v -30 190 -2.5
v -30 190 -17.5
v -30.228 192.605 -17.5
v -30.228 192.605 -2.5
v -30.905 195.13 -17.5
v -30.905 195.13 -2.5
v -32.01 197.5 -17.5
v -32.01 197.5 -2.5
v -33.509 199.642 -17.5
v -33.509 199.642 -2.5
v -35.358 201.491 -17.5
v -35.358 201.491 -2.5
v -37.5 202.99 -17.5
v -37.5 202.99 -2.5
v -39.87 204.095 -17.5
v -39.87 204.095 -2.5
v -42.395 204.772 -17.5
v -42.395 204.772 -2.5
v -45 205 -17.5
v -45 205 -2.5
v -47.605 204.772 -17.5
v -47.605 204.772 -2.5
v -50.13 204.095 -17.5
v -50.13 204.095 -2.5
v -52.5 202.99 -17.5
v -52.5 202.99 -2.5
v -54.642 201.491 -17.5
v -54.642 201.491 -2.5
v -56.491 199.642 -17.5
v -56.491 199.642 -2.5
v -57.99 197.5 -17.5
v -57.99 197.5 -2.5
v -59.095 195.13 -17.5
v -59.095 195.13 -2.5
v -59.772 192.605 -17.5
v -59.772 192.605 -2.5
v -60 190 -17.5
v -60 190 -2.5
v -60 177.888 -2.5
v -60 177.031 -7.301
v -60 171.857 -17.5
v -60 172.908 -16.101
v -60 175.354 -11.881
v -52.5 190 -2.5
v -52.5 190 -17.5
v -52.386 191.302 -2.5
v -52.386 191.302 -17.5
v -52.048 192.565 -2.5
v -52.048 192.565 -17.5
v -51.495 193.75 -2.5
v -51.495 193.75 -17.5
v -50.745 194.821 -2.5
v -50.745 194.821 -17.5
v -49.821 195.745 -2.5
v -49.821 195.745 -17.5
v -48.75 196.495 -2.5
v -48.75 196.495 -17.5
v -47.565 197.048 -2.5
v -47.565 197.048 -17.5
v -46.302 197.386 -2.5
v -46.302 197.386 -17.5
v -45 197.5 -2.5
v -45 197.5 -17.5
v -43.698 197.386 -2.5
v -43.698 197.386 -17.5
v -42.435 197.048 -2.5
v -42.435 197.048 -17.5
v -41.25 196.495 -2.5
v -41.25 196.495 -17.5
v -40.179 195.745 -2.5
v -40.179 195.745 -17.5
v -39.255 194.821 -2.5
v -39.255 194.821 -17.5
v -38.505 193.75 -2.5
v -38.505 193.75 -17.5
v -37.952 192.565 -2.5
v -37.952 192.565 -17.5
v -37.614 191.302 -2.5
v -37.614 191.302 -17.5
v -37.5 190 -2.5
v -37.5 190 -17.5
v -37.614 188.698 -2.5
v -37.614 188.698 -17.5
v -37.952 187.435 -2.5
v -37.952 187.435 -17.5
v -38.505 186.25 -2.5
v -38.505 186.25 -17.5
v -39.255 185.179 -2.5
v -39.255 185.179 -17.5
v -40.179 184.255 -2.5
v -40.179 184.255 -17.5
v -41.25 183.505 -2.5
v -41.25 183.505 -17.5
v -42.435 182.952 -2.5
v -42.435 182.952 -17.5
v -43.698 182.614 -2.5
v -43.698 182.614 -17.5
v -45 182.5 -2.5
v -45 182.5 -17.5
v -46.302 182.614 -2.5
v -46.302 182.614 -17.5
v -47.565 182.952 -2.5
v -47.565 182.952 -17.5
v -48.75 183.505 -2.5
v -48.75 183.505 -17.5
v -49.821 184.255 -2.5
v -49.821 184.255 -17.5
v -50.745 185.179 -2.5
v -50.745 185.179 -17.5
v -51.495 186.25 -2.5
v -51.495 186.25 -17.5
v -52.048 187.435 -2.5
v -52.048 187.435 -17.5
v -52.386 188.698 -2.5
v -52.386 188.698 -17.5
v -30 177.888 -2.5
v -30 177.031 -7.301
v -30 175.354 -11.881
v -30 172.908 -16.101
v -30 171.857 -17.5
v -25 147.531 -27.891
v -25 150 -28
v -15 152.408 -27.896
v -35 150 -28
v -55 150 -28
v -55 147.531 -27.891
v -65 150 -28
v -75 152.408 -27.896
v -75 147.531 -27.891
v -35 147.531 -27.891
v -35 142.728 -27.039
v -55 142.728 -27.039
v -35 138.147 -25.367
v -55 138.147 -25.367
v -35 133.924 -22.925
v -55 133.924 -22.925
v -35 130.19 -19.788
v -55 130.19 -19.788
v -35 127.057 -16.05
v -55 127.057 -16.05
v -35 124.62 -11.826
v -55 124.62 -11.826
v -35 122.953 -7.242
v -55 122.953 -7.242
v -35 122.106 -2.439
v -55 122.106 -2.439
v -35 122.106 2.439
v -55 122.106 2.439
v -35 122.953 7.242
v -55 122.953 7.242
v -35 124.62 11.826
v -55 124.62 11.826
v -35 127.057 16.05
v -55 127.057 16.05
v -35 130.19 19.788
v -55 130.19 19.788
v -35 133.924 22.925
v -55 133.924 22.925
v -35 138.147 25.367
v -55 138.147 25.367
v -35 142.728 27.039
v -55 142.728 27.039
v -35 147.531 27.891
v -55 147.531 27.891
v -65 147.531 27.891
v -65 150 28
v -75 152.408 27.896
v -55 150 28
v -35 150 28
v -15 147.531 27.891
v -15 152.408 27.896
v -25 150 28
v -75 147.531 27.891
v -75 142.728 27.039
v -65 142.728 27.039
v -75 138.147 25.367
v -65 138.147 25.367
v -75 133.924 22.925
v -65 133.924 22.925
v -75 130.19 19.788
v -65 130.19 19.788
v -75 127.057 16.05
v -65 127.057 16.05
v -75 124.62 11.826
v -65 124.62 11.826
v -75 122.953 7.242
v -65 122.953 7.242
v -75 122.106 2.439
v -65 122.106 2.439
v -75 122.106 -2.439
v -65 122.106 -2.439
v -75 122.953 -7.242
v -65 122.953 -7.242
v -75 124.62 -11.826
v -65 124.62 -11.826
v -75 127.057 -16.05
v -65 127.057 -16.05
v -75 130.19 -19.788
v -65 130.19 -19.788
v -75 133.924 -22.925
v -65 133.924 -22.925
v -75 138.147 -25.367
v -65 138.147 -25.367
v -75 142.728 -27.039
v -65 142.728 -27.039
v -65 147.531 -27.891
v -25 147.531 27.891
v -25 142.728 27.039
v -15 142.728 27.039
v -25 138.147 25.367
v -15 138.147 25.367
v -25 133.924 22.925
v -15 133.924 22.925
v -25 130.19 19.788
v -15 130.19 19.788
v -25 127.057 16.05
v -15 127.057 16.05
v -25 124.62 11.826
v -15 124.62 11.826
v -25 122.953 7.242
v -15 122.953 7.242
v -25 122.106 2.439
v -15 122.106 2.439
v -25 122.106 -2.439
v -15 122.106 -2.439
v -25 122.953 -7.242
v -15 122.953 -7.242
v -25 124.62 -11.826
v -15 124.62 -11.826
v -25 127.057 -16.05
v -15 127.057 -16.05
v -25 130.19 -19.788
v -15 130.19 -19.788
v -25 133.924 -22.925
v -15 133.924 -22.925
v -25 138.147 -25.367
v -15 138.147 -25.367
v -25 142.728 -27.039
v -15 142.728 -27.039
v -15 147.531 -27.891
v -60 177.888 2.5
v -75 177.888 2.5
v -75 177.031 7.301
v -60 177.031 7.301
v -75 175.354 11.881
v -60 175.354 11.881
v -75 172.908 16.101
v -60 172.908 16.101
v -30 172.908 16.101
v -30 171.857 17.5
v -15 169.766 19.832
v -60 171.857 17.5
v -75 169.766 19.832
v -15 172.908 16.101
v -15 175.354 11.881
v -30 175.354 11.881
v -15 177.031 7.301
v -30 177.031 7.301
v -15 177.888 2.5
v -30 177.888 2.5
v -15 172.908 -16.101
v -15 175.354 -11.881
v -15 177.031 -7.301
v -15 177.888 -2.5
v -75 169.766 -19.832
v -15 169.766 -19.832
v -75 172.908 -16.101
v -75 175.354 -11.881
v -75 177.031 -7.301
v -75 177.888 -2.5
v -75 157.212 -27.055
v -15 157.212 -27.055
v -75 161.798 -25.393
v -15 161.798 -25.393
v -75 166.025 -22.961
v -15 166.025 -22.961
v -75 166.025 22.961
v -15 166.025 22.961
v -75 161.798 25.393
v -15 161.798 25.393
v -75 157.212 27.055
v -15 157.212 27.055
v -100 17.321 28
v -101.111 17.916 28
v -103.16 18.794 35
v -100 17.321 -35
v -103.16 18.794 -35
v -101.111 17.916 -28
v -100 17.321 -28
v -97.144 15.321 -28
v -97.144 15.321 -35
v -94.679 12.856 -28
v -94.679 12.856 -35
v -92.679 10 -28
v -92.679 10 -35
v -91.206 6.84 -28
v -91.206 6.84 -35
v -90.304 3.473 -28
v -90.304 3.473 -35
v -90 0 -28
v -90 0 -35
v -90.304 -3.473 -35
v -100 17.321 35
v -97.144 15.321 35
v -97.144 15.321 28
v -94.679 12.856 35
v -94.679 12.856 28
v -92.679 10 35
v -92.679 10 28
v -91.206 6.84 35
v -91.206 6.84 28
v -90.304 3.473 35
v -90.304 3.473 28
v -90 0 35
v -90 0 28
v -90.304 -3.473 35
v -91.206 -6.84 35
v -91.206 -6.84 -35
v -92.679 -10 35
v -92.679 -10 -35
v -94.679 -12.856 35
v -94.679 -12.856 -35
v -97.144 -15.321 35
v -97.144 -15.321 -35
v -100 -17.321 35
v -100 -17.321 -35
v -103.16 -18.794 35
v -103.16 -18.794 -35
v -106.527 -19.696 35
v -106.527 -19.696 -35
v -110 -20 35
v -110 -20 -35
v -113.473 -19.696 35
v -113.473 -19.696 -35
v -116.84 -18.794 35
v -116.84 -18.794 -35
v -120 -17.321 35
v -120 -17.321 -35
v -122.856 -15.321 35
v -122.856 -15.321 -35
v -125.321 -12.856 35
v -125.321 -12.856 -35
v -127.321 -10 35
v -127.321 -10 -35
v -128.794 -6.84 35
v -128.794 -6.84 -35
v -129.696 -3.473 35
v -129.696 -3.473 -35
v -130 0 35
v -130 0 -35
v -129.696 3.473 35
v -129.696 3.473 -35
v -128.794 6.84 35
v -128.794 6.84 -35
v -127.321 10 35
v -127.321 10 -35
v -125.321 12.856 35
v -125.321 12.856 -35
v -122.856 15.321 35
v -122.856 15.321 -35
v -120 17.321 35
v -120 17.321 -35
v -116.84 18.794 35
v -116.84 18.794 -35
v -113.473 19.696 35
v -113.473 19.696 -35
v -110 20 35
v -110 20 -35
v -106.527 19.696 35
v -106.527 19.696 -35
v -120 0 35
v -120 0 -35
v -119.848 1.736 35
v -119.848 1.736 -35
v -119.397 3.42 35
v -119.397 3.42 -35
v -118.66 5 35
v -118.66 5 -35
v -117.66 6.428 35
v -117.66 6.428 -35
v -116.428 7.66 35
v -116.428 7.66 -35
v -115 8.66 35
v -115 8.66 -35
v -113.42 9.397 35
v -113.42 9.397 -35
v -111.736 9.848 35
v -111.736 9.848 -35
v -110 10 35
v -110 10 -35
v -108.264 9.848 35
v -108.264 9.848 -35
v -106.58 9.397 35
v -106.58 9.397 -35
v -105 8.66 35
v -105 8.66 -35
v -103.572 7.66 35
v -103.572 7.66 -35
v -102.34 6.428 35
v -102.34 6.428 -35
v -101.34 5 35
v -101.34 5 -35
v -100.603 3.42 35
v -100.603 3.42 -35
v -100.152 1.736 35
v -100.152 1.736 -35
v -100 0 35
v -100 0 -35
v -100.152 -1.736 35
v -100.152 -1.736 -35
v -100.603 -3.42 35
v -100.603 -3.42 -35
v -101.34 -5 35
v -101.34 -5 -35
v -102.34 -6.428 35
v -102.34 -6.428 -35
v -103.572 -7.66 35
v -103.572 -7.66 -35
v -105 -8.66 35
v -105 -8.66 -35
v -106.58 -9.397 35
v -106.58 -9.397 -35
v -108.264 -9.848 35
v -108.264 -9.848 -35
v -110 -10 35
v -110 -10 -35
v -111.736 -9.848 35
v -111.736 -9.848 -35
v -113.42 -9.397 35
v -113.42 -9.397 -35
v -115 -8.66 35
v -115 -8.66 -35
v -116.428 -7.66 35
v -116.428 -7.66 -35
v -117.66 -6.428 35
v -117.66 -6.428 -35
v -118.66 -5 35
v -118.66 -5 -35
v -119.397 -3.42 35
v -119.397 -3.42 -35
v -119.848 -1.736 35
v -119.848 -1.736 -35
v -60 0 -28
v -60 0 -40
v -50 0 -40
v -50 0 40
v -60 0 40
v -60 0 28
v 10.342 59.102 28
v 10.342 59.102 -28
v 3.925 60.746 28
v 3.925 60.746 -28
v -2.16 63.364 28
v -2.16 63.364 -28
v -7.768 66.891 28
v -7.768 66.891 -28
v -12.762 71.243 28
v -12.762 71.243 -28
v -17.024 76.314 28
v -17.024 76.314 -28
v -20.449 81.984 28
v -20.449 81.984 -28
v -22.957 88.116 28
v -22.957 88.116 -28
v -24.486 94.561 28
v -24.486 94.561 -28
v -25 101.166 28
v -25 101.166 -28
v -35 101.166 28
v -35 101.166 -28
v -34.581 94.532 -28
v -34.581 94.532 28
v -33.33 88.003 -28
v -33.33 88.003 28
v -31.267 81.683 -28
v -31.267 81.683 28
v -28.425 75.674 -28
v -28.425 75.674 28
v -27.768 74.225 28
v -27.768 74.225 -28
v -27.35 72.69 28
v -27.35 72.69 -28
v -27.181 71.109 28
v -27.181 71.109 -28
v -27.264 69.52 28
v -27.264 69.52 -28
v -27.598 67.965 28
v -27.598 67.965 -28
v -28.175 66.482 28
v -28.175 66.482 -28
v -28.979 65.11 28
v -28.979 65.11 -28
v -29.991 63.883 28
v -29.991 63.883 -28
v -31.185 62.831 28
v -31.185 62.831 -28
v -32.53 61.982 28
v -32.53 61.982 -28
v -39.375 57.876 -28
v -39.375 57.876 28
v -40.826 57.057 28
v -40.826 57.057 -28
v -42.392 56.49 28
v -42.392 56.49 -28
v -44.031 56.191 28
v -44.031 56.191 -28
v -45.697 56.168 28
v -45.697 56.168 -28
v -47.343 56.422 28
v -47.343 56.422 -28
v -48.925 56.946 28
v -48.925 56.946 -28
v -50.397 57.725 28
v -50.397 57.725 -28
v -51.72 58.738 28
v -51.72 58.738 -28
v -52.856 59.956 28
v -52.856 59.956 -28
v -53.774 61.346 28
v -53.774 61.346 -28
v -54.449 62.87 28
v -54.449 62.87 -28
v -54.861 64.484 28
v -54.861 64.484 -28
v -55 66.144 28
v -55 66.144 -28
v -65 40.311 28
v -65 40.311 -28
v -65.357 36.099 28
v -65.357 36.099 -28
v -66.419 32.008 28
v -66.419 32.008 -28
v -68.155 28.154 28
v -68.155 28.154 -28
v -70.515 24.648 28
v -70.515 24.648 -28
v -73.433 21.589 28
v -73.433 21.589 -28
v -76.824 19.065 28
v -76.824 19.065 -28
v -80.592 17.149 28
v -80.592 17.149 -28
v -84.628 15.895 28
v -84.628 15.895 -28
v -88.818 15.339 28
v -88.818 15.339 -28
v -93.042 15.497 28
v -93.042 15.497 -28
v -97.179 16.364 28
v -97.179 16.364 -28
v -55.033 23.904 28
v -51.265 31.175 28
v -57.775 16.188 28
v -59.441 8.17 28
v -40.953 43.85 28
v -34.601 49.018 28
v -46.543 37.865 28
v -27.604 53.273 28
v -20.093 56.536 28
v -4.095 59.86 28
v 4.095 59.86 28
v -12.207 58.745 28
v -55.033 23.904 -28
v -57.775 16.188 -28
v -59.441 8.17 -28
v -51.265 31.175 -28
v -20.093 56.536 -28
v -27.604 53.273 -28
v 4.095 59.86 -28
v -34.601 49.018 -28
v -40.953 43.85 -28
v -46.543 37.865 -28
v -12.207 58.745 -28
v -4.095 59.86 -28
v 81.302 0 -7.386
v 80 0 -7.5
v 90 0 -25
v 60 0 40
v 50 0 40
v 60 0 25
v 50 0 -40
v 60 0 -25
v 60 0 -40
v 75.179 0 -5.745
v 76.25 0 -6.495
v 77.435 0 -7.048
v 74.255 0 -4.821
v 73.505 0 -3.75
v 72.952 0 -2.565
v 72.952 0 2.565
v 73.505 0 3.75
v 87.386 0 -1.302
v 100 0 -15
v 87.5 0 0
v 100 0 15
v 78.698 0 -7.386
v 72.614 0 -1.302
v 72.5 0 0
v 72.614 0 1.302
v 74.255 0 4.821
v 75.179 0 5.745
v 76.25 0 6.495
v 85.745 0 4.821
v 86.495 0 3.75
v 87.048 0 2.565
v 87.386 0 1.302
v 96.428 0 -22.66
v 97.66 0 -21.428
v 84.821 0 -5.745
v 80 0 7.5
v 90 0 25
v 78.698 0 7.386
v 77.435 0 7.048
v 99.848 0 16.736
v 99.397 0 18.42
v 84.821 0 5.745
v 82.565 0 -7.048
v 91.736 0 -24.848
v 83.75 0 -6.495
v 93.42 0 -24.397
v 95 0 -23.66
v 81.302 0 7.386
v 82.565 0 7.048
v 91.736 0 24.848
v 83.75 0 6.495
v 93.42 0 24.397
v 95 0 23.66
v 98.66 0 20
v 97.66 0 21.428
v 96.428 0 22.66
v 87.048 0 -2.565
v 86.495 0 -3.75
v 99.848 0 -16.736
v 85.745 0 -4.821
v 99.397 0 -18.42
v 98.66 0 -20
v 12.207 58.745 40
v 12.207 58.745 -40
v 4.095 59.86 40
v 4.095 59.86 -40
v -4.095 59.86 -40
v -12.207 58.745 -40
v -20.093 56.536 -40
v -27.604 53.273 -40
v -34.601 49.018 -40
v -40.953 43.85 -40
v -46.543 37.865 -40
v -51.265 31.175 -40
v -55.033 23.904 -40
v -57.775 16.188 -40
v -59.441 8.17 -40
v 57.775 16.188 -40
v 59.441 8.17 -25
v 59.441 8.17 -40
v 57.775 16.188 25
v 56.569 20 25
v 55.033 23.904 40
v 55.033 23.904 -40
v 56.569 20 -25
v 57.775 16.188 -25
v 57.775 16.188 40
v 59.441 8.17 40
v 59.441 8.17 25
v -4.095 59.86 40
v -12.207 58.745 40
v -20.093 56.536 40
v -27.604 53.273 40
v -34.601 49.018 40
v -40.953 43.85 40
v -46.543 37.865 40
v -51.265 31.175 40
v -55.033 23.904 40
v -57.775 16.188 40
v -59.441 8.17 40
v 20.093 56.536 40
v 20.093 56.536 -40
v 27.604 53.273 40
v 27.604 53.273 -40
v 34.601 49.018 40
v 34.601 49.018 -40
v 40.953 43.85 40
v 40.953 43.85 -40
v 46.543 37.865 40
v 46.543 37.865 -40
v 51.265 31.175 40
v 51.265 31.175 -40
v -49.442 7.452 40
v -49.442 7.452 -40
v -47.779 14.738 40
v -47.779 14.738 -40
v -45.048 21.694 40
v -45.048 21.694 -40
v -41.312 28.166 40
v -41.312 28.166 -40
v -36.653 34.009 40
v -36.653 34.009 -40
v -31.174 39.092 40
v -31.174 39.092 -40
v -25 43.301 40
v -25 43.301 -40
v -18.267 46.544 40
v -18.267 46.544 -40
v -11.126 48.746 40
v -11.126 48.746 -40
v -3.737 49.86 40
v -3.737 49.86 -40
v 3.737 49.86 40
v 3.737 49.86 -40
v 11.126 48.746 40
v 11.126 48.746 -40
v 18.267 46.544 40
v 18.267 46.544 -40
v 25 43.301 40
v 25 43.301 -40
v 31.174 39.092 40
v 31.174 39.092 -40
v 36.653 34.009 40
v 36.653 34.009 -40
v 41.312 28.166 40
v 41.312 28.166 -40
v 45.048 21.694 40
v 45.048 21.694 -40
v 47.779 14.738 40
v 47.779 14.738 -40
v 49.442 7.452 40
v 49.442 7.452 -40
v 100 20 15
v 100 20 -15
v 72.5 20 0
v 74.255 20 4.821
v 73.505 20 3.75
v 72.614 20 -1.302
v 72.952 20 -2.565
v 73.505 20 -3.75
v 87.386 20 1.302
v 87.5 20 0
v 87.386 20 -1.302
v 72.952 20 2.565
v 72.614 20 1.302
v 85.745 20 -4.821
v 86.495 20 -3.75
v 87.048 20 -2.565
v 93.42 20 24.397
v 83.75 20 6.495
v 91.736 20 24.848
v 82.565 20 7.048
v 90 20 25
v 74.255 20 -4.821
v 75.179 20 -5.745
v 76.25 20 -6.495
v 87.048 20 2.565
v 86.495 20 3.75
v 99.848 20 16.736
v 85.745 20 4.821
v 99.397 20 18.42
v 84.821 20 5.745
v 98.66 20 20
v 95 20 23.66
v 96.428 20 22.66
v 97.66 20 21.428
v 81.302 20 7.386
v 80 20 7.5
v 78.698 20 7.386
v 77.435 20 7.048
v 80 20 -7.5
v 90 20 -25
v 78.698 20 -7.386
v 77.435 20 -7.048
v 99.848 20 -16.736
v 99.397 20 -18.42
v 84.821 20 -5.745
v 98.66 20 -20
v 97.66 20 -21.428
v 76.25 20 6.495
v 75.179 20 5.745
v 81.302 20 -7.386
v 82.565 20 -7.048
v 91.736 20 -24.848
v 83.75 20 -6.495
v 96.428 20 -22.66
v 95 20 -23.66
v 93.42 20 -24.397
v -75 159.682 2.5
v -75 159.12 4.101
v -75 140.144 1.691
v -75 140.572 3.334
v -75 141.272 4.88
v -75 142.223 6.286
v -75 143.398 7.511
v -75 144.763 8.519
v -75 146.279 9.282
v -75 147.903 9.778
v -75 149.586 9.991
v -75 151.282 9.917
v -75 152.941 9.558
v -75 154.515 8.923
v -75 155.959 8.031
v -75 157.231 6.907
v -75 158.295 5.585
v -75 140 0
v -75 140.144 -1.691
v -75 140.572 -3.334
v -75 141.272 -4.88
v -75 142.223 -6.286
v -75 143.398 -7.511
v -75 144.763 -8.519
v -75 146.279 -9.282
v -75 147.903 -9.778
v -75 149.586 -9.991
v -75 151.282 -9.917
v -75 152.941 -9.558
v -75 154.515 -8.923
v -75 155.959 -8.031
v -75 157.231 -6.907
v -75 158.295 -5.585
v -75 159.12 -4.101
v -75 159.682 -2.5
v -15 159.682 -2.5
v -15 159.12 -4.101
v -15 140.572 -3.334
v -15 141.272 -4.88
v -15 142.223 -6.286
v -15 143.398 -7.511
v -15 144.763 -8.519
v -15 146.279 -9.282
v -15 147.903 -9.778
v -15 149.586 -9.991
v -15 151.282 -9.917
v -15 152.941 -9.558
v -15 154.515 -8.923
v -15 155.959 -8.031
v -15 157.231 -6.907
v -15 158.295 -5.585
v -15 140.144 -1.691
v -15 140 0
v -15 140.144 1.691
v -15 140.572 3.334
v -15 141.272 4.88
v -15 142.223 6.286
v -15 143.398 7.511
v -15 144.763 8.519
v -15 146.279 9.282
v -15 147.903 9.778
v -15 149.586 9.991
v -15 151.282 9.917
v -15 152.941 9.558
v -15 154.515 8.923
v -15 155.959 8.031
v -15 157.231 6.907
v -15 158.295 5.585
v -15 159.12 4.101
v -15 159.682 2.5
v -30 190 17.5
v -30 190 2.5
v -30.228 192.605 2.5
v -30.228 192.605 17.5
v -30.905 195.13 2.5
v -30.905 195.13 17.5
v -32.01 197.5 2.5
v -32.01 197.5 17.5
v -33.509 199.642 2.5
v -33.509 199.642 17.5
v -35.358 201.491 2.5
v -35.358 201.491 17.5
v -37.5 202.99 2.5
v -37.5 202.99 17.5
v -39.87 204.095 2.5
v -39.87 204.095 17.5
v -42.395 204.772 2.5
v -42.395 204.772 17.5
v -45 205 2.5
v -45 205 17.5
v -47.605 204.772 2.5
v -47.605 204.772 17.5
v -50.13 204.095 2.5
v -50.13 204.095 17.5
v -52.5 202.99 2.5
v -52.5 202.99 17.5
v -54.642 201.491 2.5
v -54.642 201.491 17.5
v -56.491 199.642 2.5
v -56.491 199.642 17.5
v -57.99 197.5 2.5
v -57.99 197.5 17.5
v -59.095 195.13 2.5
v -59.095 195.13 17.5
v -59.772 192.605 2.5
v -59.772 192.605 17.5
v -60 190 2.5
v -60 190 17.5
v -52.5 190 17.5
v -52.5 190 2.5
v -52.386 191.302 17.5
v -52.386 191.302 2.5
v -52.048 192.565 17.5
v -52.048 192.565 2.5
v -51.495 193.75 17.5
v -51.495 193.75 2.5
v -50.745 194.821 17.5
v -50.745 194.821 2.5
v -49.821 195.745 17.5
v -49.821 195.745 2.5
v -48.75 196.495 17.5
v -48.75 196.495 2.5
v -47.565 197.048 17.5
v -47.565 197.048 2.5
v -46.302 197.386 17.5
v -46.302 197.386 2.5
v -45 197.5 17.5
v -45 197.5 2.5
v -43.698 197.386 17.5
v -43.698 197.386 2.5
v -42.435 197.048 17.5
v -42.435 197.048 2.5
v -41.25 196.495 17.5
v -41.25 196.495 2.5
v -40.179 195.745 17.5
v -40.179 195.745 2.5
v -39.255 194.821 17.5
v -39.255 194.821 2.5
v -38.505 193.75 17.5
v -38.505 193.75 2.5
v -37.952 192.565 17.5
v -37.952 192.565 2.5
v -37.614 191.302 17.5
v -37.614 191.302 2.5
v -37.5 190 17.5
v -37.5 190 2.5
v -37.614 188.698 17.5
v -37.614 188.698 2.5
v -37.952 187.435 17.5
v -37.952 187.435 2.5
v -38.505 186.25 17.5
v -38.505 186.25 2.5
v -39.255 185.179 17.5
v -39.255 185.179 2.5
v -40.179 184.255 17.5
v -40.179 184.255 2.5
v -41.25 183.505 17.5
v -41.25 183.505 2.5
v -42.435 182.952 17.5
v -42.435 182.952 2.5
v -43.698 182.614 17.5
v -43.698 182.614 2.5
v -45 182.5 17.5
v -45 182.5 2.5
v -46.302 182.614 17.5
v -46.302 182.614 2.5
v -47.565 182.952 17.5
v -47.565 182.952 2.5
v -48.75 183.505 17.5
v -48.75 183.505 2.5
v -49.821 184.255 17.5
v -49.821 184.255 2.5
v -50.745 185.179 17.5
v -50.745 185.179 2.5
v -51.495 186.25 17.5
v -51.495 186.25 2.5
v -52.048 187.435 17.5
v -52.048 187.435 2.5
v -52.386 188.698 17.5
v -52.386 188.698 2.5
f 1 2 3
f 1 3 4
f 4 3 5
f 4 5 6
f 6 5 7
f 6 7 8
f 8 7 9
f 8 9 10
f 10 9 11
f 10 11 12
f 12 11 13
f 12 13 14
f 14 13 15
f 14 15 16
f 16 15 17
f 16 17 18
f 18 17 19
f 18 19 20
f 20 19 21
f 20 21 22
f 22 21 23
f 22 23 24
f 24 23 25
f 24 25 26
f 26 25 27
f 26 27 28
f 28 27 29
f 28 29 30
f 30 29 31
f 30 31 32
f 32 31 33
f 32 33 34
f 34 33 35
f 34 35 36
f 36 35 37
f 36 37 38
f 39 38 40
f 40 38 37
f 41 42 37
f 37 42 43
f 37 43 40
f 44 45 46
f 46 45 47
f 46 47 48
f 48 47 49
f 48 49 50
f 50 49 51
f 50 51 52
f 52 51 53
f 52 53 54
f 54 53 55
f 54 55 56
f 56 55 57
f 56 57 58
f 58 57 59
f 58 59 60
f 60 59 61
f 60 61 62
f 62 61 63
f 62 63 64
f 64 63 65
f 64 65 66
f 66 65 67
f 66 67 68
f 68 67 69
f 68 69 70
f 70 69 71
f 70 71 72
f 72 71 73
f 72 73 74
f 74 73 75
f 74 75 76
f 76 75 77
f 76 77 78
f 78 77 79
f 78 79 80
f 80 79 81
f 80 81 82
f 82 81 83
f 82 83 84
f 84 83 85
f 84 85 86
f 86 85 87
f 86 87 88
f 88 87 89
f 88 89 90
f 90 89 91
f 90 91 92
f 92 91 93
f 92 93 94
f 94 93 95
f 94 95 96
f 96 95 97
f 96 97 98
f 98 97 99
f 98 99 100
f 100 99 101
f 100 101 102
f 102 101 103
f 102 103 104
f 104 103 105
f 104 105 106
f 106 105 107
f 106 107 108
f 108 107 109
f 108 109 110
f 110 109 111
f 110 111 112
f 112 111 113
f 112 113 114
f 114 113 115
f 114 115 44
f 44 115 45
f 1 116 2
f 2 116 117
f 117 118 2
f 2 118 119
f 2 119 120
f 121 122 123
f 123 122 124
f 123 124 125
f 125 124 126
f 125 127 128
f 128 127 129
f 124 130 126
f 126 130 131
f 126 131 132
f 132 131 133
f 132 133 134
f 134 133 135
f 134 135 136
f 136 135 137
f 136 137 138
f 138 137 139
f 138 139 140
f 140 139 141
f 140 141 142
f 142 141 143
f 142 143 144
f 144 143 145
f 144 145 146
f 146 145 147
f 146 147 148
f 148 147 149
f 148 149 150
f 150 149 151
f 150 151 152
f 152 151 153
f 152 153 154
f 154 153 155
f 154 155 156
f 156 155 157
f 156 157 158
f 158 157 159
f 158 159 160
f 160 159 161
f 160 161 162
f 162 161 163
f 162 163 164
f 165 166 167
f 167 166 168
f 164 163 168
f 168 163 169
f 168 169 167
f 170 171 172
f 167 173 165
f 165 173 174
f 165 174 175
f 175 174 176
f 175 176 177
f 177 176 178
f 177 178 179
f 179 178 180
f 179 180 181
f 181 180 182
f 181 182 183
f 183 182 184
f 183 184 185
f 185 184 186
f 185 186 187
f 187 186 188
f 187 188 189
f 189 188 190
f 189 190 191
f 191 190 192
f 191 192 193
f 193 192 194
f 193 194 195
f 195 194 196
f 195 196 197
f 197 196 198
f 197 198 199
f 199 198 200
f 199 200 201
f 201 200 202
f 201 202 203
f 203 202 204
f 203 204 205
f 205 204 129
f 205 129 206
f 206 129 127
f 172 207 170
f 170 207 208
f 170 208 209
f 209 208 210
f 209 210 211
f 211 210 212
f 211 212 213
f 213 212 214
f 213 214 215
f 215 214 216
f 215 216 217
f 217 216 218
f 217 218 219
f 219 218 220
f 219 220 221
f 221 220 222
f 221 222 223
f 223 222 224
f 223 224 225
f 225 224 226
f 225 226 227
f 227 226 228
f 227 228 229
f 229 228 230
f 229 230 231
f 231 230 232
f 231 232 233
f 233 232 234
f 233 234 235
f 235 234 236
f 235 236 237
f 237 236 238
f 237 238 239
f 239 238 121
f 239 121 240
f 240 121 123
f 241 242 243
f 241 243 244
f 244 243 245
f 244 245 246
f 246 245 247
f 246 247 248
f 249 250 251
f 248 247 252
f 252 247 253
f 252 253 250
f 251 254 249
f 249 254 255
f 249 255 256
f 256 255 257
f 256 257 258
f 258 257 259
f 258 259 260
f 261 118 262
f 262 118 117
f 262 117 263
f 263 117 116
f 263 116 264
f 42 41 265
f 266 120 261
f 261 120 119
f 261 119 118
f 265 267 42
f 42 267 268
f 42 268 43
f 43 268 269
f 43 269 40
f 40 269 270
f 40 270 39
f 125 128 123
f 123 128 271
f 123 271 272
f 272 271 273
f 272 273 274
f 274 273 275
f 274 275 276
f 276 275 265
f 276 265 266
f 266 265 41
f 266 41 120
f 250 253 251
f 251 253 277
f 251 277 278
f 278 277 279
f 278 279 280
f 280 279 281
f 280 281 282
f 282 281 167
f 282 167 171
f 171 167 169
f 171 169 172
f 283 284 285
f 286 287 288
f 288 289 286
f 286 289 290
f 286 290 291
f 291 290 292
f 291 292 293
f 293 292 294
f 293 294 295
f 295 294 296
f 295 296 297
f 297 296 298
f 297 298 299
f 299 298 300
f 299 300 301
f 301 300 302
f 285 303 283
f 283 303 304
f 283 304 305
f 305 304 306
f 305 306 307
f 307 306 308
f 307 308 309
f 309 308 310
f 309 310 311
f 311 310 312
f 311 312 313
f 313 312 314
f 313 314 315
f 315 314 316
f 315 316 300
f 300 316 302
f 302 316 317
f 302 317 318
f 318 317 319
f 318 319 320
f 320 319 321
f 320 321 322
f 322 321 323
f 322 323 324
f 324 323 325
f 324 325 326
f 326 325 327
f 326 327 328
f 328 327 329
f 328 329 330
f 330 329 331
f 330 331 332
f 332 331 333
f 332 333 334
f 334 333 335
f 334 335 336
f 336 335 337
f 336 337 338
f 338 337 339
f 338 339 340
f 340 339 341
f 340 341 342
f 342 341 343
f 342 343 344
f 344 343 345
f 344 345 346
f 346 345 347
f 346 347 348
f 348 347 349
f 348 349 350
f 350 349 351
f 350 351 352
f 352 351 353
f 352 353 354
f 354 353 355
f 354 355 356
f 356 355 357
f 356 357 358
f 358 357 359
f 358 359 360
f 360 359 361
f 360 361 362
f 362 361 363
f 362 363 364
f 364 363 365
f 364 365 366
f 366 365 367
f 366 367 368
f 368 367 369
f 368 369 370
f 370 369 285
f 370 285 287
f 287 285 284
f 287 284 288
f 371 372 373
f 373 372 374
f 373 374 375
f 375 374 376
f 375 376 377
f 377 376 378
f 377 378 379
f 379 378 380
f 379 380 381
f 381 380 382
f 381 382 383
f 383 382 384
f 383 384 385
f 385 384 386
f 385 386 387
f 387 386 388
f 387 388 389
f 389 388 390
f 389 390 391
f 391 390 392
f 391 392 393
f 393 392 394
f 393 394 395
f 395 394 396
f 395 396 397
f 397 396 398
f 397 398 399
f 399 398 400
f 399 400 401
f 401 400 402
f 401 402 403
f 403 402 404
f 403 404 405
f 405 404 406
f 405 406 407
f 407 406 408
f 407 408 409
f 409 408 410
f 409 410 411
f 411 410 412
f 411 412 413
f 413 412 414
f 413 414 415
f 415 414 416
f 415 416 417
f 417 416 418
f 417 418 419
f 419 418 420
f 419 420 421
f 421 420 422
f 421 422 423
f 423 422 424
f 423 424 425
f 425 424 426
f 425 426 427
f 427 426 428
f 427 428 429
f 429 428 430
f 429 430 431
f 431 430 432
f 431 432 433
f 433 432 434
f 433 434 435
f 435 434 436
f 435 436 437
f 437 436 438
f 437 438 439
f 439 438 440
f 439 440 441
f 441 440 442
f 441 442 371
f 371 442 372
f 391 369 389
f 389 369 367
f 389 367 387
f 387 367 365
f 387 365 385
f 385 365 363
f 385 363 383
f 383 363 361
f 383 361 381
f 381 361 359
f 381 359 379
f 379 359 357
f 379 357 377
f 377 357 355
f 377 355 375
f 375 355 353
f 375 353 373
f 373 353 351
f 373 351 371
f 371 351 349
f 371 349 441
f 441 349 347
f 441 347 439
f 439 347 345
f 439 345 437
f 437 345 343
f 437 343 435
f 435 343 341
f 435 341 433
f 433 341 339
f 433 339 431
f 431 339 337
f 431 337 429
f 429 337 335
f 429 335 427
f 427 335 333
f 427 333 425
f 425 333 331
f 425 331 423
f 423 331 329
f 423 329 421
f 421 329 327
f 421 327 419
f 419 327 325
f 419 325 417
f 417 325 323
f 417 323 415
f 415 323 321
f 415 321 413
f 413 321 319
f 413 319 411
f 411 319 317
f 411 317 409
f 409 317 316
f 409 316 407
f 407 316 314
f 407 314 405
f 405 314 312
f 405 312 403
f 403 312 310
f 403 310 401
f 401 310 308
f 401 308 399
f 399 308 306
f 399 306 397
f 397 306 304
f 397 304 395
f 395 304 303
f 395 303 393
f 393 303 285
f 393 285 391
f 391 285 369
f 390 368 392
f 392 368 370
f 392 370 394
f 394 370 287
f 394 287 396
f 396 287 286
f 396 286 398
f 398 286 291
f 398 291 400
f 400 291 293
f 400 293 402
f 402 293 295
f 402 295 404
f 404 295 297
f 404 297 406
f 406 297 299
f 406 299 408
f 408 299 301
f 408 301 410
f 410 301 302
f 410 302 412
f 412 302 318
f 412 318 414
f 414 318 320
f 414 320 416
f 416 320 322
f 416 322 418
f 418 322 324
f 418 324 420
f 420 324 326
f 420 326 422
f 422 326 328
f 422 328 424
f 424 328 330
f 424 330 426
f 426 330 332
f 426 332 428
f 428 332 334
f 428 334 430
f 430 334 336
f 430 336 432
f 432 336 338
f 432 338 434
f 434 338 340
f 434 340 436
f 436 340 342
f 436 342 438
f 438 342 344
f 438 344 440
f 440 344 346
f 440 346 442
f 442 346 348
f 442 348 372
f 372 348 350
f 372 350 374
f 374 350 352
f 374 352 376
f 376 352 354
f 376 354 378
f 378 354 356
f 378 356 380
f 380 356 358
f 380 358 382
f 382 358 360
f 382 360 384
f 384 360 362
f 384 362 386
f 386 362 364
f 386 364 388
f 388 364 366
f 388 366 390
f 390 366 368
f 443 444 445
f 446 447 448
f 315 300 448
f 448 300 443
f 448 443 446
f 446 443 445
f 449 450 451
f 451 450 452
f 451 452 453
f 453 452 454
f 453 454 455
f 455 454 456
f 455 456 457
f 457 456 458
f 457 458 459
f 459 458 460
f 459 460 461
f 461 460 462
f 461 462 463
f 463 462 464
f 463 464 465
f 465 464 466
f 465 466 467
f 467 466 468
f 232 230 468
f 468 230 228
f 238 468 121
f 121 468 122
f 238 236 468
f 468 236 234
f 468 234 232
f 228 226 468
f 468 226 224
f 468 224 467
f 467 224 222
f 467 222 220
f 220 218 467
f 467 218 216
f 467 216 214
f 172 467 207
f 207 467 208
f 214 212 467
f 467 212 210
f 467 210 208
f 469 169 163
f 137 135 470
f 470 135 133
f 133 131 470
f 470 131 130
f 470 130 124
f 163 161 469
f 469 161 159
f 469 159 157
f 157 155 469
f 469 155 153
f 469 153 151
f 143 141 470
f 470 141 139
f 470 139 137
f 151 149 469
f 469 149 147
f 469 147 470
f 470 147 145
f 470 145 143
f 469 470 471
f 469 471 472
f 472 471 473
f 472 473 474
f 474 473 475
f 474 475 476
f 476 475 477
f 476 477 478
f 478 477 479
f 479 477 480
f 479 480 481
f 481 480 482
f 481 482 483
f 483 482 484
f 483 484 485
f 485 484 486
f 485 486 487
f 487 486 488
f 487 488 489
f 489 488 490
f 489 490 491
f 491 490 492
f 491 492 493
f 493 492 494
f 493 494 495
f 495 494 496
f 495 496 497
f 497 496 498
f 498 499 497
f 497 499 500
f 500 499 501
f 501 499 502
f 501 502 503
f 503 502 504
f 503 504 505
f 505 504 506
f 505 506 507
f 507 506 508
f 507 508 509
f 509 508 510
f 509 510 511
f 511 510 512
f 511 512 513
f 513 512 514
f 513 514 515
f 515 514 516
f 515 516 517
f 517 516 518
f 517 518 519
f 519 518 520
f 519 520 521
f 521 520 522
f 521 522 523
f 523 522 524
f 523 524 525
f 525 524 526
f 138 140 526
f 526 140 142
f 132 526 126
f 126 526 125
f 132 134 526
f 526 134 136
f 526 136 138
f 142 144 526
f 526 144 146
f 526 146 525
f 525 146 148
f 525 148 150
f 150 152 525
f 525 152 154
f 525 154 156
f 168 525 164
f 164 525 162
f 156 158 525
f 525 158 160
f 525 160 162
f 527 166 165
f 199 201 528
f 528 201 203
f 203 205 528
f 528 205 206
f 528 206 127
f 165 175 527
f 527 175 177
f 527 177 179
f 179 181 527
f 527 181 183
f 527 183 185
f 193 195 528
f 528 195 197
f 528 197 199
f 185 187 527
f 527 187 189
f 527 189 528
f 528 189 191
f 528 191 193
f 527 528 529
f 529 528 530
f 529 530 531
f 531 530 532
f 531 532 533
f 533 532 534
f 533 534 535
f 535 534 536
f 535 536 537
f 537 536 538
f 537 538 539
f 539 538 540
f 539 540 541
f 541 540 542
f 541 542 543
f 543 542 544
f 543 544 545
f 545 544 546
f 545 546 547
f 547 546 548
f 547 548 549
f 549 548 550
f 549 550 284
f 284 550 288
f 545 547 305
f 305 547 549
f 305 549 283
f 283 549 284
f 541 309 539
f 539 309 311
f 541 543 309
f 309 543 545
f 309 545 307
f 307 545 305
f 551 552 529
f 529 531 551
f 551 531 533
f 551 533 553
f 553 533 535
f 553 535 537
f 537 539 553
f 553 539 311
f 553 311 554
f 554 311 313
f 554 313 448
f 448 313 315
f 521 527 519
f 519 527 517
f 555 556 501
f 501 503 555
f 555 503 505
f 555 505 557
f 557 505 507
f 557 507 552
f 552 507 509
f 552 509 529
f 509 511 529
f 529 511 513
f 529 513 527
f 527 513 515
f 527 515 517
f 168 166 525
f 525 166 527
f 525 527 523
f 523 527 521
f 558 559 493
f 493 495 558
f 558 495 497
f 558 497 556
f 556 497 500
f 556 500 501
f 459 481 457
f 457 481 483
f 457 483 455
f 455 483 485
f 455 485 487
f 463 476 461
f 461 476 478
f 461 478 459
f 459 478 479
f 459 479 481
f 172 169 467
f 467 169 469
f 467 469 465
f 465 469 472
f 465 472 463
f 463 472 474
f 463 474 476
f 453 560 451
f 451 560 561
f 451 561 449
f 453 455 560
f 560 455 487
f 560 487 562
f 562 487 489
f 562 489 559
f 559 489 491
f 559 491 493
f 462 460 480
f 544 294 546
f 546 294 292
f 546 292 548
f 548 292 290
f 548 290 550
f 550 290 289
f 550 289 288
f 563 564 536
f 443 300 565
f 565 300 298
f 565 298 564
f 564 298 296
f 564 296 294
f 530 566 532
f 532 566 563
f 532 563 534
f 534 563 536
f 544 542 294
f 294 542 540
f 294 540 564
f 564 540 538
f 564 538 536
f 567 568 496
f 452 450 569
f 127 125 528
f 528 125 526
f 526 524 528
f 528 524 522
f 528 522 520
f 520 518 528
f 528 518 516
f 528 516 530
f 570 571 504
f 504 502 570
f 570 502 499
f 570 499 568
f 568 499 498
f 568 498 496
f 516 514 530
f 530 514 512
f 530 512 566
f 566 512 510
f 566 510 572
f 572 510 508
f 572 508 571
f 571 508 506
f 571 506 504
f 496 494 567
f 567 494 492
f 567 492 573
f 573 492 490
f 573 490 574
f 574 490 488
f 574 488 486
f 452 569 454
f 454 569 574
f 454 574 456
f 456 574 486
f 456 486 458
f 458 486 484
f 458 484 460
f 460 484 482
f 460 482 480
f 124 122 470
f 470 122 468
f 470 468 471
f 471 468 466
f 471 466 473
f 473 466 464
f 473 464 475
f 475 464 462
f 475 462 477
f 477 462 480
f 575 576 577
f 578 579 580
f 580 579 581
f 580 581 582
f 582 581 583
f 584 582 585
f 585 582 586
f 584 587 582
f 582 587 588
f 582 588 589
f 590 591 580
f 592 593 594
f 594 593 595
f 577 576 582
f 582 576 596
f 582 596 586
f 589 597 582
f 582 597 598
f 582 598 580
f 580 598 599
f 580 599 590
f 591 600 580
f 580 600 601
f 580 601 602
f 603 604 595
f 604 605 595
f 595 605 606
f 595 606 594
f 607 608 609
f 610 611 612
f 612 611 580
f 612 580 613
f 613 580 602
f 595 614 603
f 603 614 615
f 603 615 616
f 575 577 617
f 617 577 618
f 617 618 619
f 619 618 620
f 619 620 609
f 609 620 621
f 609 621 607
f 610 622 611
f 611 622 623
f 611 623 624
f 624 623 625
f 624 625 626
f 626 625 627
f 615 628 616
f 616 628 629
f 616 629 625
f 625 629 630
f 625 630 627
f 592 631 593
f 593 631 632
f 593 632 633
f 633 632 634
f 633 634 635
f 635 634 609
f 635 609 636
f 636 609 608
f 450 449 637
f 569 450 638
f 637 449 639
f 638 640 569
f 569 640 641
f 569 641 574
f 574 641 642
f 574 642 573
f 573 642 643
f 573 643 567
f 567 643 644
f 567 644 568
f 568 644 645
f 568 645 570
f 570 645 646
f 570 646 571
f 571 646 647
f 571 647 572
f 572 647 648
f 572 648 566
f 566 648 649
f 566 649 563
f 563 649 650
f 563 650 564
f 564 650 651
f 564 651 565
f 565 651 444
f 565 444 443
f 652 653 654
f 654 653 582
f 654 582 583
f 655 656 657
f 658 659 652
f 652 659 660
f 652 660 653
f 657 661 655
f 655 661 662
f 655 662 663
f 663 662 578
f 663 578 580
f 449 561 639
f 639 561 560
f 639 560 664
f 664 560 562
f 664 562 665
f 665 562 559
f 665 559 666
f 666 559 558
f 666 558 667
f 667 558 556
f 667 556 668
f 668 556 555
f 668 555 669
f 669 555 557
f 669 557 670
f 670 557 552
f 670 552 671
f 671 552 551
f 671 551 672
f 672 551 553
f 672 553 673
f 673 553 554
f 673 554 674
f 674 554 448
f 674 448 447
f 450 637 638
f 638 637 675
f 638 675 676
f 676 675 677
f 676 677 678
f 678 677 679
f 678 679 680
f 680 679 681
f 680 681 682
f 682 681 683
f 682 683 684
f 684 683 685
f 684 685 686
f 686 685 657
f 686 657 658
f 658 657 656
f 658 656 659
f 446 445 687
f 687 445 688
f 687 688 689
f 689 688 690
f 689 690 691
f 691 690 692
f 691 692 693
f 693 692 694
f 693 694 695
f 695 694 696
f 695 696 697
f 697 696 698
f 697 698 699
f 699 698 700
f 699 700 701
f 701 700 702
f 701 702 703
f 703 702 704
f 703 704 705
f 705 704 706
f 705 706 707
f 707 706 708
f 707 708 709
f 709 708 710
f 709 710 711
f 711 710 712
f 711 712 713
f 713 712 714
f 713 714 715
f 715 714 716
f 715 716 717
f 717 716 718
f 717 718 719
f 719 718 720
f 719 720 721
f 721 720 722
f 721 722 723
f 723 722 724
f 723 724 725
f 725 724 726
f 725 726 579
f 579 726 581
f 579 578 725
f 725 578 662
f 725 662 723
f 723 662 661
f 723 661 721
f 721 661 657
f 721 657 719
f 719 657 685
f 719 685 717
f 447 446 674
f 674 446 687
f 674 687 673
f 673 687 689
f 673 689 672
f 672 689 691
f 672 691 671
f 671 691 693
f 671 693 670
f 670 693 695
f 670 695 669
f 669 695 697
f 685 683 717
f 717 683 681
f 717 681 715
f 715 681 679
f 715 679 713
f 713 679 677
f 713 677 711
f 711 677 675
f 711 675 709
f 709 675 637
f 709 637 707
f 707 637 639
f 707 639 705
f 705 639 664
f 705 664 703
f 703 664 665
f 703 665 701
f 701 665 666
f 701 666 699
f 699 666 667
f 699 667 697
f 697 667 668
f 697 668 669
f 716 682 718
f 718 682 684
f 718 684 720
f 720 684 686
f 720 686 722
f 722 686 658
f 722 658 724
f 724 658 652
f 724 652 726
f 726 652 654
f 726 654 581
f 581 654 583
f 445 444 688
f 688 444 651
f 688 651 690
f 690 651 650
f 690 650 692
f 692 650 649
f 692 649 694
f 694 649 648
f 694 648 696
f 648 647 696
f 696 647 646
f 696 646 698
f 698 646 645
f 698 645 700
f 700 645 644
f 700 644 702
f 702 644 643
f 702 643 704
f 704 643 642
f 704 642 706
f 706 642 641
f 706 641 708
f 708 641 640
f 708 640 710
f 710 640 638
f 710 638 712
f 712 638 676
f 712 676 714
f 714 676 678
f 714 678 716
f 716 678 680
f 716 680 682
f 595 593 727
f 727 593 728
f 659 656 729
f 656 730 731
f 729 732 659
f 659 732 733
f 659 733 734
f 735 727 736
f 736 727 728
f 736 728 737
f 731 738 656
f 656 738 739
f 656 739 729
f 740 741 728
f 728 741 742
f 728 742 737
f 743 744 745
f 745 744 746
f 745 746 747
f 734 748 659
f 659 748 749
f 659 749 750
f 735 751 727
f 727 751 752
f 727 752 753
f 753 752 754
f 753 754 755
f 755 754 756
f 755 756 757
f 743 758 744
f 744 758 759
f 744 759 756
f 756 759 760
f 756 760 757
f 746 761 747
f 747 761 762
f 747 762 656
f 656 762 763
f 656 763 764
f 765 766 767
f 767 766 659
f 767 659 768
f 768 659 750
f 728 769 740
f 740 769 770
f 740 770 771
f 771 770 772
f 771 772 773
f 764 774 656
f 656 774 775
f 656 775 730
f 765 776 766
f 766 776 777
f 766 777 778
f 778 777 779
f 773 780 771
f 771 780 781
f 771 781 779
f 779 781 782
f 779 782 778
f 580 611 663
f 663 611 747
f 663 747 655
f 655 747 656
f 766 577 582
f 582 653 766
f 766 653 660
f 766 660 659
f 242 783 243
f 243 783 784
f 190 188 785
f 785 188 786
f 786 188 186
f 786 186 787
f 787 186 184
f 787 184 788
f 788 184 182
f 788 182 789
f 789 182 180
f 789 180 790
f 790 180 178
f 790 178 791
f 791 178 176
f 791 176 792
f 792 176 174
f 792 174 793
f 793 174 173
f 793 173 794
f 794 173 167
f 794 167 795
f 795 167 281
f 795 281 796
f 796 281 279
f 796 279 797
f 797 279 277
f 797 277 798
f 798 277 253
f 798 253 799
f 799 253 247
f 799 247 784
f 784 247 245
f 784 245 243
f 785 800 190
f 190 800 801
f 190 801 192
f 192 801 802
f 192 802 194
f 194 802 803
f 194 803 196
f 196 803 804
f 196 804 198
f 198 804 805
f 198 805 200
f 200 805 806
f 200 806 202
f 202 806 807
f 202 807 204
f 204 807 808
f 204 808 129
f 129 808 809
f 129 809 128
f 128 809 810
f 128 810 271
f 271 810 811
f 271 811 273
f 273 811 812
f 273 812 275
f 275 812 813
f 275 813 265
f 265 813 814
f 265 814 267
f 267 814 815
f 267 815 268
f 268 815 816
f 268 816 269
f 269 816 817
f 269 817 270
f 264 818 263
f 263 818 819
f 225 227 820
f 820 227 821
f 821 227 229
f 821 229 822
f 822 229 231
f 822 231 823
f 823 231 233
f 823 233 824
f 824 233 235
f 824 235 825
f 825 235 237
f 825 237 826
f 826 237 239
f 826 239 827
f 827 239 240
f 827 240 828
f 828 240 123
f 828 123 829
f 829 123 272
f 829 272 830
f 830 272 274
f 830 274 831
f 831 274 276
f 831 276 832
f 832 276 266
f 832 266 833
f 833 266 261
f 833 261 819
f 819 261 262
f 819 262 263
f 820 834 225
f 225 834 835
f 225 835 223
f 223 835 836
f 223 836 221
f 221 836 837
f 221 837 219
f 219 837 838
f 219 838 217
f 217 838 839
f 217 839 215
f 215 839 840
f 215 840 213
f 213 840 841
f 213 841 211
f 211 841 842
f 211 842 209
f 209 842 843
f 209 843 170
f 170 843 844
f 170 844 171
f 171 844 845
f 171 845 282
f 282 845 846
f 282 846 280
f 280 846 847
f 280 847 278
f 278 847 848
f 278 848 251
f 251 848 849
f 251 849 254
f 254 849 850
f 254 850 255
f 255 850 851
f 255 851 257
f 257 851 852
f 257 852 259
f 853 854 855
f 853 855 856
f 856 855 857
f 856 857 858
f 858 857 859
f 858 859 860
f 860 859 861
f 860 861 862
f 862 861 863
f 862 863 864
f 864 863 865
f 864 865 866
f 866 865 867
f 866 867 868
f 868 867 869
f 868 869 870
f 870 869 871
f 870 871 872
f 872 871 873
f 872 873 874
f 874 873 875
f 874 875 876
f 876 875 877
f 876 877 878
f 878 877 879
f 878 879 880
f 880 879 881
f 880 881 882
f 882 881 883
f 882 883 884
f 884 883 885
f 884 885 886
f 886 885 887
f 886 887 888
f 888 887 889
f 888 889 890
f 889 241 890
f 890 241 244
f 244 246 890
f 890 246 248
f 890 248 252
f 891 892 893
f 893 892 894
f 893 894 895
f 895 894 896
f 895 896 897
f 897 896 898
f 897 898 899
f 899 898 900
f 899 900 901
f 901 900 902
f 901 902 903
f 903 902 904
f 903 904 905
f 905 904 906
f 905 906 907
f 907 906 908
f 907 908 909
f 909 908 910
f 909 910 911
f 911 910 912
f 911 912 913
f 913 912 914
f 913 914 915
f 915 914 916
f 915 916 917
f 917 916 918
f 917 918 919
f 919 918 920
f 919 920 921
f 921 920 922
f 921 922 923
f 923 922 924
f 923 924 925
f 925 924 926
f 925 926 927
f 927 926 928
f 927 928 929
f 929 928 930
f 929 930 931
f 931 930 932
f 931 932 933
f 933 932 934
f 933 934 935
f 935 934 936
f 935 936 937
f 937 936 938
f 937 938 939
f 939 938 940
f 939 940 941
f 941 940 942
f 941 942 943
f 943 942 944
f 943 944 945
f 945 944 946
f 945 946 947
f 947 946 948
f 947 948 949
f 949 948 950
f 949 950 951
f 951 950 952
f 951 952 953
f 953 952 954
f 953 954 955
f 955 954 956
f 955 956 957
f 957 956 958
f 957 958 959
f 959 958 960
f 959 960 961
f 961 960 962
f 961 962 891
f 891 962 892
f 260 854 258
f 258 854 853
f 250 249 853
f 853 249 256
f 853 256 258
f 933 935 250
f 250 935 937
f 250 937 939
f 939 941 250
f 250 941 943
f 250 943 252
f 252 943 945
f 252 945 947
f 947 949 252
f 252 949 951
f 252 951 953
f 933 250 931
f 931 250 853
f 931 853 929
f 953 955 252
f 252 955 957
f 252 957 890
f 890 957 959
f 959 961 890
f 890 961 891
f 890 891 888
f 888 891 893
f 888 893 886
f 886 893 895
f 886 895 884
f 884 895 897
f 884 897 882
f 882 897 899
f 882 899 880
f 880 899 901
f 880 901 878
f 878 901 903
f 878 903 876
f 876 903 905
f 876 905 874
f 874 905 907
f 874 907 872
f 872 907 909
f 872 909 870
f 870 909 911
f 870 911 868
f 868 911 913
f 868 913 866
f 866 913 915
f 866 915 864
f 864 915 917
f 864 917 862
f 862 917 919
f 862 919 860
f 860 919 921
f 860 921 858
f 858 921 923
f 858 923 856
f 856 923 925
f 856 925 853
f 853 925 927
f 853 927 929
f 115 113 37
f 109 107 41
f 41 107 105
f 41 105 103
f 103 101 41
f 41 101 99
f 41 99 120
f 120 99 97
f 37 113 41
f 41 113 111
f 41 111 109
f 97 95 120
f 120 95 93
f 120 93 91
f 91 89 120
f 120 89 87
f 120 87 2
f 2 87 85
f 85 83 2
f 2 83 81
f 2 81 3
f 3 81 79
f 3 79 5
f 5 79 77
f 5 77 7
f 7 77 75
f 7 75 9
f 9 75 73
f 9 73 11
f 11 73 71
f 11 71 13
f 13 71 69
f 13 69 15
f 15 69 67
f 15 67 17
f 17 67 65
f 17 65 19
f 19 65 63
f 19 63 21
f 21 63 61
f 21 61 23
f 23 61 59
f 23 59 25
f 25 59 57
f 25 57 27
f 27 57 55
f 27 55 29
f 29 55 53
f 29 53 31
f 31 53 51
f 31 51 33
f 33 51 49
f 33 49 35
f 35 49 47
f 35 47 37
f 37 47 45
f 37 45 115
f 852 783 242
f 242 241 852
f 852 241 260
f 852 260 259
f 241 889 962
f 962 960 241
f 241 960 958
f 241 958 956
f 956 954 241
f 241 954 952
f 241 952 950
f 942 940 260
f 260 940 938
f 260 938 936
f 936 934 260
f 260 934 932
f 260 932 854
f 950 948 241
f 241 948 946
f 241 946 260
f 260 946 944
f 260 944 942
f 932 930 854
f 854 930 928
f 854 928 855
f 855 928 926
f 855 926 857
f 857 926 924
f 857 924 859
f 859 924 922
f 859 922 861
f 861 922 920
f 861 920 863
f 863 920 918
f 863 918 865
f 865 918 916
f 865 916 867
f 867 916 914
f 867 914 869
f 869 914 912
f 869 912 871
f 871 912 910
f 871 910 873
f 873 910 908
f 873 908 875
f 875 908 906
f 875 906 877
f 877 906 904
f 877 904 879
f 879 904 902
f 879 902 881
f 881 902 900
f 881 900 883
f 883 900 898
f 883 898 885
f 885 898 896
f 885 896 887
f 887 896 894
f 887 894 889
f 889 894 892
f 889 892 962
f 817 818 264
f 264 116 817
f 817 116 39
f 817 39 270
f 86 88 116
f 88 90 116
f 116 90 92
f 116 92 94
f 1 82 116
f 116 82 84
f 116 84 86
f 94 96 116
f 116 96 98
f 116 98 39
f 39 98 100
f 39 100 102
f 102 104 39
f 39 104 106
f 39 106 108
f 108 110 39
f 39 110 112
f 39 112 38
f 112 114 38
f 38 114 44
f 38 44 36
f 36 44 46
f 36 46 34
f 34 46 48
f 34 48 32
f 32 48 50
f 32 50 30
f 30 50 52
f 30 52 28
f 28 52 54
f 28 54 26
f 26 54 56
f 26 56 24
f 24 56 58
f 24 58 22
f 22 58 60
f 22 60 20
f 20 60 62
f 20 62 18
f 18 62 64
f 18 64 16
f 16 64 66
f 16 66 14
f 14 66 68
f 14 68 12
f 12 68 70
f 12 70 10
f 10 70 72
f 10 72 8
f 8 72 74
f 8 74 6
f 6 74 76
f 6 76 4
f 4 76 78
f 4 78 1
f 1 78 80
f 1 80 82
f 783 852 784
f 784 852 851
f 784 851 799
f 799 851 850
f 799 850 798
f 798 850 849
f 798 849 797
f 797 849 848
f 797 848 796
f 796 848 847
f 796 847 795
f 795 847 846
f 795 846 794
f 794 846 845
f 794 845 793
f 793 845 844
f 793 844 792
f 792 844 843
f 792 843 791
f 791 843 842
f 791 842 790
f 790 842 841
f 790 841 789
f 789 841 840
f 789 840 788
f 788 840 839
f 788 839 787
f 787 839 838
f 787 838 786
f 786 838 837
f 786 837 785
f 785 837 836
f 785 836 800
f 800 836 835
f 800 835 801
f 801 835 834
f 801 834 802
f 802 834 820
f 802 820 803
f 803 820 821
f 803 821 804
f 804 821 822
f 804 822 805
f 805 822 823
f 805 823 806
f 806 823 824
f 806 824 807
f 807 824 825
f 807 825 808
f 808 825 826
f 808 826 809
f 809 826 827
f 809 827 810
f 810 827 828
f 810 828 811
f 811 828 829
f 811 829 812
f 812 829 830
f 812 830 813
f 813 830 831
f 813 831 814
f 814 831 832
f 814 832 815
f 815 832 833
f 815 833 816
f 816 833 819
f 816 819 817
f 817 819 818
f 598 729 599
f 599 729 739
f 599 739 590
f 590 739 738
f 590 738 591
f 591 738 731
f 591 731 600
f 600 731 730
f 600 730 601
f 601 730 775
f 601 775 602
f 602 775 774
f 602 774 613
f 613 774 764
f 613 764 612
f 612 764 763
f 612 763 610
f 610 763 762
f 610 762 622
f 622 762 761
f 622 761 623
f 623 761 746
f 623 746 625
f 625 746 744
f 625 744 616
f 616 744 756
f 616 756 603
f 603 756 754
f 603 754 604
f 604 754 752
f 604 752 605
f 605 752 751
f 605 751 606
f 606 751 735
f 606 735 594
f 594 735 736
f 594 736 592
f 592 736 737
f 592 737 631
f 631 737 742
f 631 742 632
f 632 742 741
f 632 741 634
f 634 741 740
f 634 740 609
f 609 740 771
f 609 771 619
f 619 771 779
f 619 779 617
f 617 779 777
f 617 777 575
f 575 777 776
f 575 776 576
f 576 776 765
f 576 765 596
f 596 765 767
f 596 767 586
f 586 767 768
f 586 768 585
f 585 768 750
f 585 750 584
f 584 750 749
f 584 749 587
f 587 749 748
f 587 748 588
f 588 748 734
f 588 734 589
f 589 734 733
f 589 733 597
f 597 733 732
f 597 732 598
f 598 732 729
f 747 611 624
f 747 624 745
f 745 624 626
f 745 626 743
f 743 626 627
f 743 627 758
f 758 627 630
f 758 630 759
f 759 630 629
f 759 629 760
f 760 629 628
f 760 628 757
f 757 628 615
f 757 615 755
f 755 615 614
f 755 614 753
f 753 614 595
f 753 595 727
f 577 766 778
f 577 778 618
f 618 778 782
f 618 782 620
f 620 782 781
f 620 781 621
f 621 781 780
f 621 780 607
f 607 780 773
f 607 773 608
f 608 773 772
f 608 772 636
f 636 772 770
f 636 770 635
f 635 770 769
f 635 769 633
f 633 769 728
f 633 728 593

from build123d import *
from build123d.topology import SkipClean

# Parameters (mm, degrees)
BOSS_EXTRUDE1_START       = -35
BOSS_EXTRUDE1_OUTLINE_R   = 20
BOSS_EXTRUDE1_OUTLINE_R_2 = 10
BOSS_EXTRUDE1_DEPTH       = 70
BOSS_EXTRUDE2_DEPTH       = 40
SKETCH1_7_W               = 20
SKETCH1_7_H               = 20
BOSS_EXTRUDE3_DEPTH       = 25
BOSS_EXTRUDE4_DEPTH       = 28
SKETCH4_R                 = 28
SKETCH4_R_2               = 10
BOSS_EXTRUDE5_DEPTH       = 60
BOSS_EXTRUDE7_START       = -17.5
BOSS_EXTRUDE7_OUTLINE_R   = 7.5
BOSS_EXTRUDE7_DEPTH       = 35
BOSS_EXTRUDE6_DEPTH       = 28
CUT_EXTRUDE3_DEPTH        = 83
CUT_EXTRUDE3_DEPTH_BACK   = 100
SKETCH8_R                 = 7.5
CUT_EXTRUDE4_DEPTH        = 46
FILLET1_R                 = 10


# Read off the part's stored shape, not the designer's step: Boss-Extrude1, Boss-Extrude7
with BuildPart() as part:
    # Boss-Extrude1 outline → Boss-Extrude1 (new body)
    with BuildSketch(Plane.XY.offset(BOSS_EXTRUDE1_START)):
        with Locations((-110, 0)):
            Circle(BOSS_EXTRUDE1_OUTLINE_R)
        with Locations((-110, 0)):
            Circle(BOSS_EXTRUDE1_OUTLINE_R_2, mode=Mode.SUBTRACT)
    extrude(amount=BOSS_EXTRUDE1_DEPTH)



with BuildPart() as body_2:
    # Sketch1<6> → Boss-Extrude2 (new, symmetric)
    with BuildSketch(Plane.XY):
        with BuildLine():
            ThreePointArc((-50, 0), (0, 50), (50, 0))
            Line((50, 0), (60, 0))
            ThreePointArc((60, 0), (59.135913579, 10.146118724), (56.568542495, 20))
            ThreePointArc((56.568542495, 20), (38.749299446, 45.8092981), (10.342399193, 59.101901652))
            ThreePointArc((10.342399193, 59.101901652), (-38.596995015, 45.937696675), (-60, 0))
            Line((-60, 0), (-50, 0))
        make_face()
    extrude(amount=BOSS_EXTRUDE2_DEPTH, both=True)

    # Sketch1<7> → Boss-Extrude3 (add, symmetric)
    with BuildSketch(Plane.XY):
        with BuildLine():
            ThreePointArc((56.568542495, 20), (59.135913579, 10.146118724), (60, 0))
            Line((60, 0), (80, 0))
            Line((80, 0), (80, 20))
            Line((80, 20), (56.568542495, 20))
        make_face()
        with Locations((90, 10)):
            Rectangle(SKETCH1_7_W, SKETCH1_7_H)
    extrude(amount=BOSS_EXTRUDE3_DEPTH, both=True)


with BuildPart() as part_1:
    add(part.part)

    add(body_2.part)  # Boss-Extrude4 merges body 2
    # Sketch1<10> → Boss-Extrude4 (add, symmetric)
    with BuildSketch(Plane.XY):
        with BuildLine():
            Line((-90, 0), (-70, 0))
            ThreePointArc((-70, 0), (-68.738635424, 13.228756555), (-65, 25.980762114))
            Line((-65, 25.980762114), (-65, 40.311288741))
            ThreePointArc((-65, 40.311288741), (-76.823843083, 19.065374102), (-101.111111111, 17.91612833))
            ThreePointArc((-101.111111111, 17.91612833), (-93.003268288, 10.540925534), (-90, 0))
        make_face()
        with BuildLine():
            Line((-70, 0), (-60, 0))
            ThreePointArc((-60, 0), (-38.596995015, 45.937696675), (10.342399193, 59.101901652))
            ThreePointArc((10.342399193, 59.101901652), (-0.830275834, 62.694222351), (-10.603119378, 69.192296244))
            ThreePointArc((-10.603119378, 69.192296244), (-21.865731835, 66.497291458), (-32.529894875, 61.982303438))
            ThreePointArc((-32.529894875, 61.982303438), (-36.01103024, 60.026708231), (-39.375, 57.87580993))
            ThreePointArc((-39.375, 57.87580993), (-54.569759712, 43.842232208), (-65, 25.980762114))
            ThreePointArc((-65, 25.980762114), (-68.738635424, 13.228756555), (-70, 0))
        make_face()
        with BuildLine():
            Line((-65, 40.311288741), (-65, 25.980762114))
            ThreePointArc((-65, 25.980762114), (-54.569759712, 43.842232208), (-39.375, 57.87580993))
            ThreePointArc((-39.375, 57.87580993), (-49.677071733, 57.304948012), (-55, 66.143782777))
            Line((-55, 66.143782777), (-55, 136))
            Line((-55, 136), (-65, 136))
            Line((-65, 136), (-65, 40.311288741))
        make_face()
        with BuildLine():
            ThreePointArc((-32.529894875, 61.982303438), (-21.865731835, 66.497291458), (-10.603119378, 69.192296244))
            ThreePointArc((-10.603119378, 69.192296244), (-21.234787758, 83.633268621), (-25, 101.166016053))
            Line((-25, 101.166016053), (-25, 136))
            Line((-25, 136), (-35, 136))
            Line((-35, 136), (-35, 101.166016053))
            ThreePointArc((-35, 101.166016053), (-33.329691901, 88.00274883), (-28.424640616, 75.67383951))
            ThreePointArc((-28.424640616, 75.67383951), (-27.598335088, 67.964855653), (-32.529894875, 61.982303438))
        make_face()
    extrude(amount=BOSS_EXTRUDE4_DEPTH, both=True)



with BuildPart() as body_2_2:
    # Sketch4 → Boss-Extrude5 (new body)
    with BuildSketch(Plane(origin=(-15, 0, 0), x_dir=(0, 0, -1), z_dir=(1, 0, 0))):
        with Locations(Location((0, 150, 0), (0, 0, 90))):
            Circle(SKETCH4_R)
        with Locations(Location((0, 150, 0), (0, 0, 90))):
            Circle(SKETCH4_R_2, mode=Mode.SUBTRACT)
    extrude(amount=-BOSS_EXTRUDE5_DEPTH)

    # Boss-Extrude7 outline → Boss-Extrude7 (add)
    with BuildSketch(Plane.XY.offset(BOSS_EXTRUDE7_START)):
        with BuildLine():
            Line((-30, 150), (-30, 190))
            ThreePointArc((-30, 190), (-45, 205), (-60, 190))
            Line((-60, 190), (-60, 150))
            Line((-60, 150), (-30, 150))
        make_face()
        with Locations((-45, 190)):
            Circle(BOSS_EXTRUDE7_OUTLINE_R, mode=Mode.SUBTRACT)
    extrude(amount=BOSS_EXTRUDE7_DEPTH)


with BuildPart() as part_2:
    add(part_1.part)

    add(body_2_2.part)  # Boss-Extrude6 merges body 2 2
    # Sketch1<11> → Boss-Extrude6 (add, symmetric)
    with BuildSketch(Plane.XY):
        Polygon((-35, 136), (-25, 136), (-25, 150), (-30, 150), (-35, 150), align=None)
        Polygon((-65, 150), (-65, 136), (-55, 136), (-55, 150), (-60, 150), align=None)
    extrude(amount=BOSS_EXTRUDE6_DEPTH, both=True)

    # Sketch7 → Cut-Extrude3 (cut, two sides: drawn at the far end of the back side and taken through both)
    with SkipClean():  # the faces are left unmerged after this step: merging them gives an invalid solid
        with BuildSketch(Plane(origin=(-25, 0, 0), x_dir=(0, 0, -1), z_dir=(1, 0, 0)).offset(-CUT_EXTRUDE3_DEPTH_BACK)):
            with BuildLine():
                ThreePointArc((2.5, 159.682458366), (1.260042925, 159.920296963), (0, 160))
                ThreePointArc((0, 160), (-1.260042925, 159.920296963), (-2.5, 159.682458366))
                ThreePointArc((-2.5, 159.682458366), (-7.90569415, 156.123724357), (-10, 150))
                Line((-10, 150), (10, 150))
                ThreePointArc((10, 150), (7.90569415, 156.123724357), (2.5, 159.682458366))
            make_face()
            with BuildLine():
                ThreePointArc((-10, 150), (0, 140), (10, 150))
                Line((10, 150), (-10, 150))
            make_face()
            with BuildLine():
                Line((0, 205), (0, 160))
                ThreePointArc((0, 160), (1.260042925, 159.920296963), (2.5, 159.682458366))
                Line((2.5, 159.682458366), (2.5, 205))
                Line((2.5, 205), (0, 205))
            make_face()
            with BuildLine():
                ThreePointArc((-2.5, 159.682458366), (-1.260042925, 159.920296963), (0, 160))
                Line((0, 160), (0, 205))
                Line((0, 205), (-2.5, 205))
                Line((-2.5, 205), (-2.5, 159.682458366))
            make_face()
        extrude(amount=CUT_EXTRUDE3_DEPTH + CUT_EXTRUDE3_DEPTH_BACK, mode=Mode.SUBTRACT)

    # Sketch8 → Cut-Extrude4 (cut)
    with SkipClean():  # the faces are left unmerged after this step: merging them gives an invalid solid
        with BuildSketch(Plane(origin=(0, 20, 0), x_dir=(1, 0, 0), z_dir=(0, 1, 0))):
            with Locations(Location((80, 0, 0), (0, 0, 180))):
                Circle(SKETCH8_R)
        extrude(amount=-CUT_EXTRUDE4_DEPTH, mode=Mode.SUBTRACT)

    # Fillet1
    fillet1_edges = [part_2.edges().sort_by_distance(p)[0] for p in [
        (100, 10, -25),
        (100, 10, 25),
    ]]
    fillet(fillet1_edges, radius=FILLET1_R)


solid = part_2.part
